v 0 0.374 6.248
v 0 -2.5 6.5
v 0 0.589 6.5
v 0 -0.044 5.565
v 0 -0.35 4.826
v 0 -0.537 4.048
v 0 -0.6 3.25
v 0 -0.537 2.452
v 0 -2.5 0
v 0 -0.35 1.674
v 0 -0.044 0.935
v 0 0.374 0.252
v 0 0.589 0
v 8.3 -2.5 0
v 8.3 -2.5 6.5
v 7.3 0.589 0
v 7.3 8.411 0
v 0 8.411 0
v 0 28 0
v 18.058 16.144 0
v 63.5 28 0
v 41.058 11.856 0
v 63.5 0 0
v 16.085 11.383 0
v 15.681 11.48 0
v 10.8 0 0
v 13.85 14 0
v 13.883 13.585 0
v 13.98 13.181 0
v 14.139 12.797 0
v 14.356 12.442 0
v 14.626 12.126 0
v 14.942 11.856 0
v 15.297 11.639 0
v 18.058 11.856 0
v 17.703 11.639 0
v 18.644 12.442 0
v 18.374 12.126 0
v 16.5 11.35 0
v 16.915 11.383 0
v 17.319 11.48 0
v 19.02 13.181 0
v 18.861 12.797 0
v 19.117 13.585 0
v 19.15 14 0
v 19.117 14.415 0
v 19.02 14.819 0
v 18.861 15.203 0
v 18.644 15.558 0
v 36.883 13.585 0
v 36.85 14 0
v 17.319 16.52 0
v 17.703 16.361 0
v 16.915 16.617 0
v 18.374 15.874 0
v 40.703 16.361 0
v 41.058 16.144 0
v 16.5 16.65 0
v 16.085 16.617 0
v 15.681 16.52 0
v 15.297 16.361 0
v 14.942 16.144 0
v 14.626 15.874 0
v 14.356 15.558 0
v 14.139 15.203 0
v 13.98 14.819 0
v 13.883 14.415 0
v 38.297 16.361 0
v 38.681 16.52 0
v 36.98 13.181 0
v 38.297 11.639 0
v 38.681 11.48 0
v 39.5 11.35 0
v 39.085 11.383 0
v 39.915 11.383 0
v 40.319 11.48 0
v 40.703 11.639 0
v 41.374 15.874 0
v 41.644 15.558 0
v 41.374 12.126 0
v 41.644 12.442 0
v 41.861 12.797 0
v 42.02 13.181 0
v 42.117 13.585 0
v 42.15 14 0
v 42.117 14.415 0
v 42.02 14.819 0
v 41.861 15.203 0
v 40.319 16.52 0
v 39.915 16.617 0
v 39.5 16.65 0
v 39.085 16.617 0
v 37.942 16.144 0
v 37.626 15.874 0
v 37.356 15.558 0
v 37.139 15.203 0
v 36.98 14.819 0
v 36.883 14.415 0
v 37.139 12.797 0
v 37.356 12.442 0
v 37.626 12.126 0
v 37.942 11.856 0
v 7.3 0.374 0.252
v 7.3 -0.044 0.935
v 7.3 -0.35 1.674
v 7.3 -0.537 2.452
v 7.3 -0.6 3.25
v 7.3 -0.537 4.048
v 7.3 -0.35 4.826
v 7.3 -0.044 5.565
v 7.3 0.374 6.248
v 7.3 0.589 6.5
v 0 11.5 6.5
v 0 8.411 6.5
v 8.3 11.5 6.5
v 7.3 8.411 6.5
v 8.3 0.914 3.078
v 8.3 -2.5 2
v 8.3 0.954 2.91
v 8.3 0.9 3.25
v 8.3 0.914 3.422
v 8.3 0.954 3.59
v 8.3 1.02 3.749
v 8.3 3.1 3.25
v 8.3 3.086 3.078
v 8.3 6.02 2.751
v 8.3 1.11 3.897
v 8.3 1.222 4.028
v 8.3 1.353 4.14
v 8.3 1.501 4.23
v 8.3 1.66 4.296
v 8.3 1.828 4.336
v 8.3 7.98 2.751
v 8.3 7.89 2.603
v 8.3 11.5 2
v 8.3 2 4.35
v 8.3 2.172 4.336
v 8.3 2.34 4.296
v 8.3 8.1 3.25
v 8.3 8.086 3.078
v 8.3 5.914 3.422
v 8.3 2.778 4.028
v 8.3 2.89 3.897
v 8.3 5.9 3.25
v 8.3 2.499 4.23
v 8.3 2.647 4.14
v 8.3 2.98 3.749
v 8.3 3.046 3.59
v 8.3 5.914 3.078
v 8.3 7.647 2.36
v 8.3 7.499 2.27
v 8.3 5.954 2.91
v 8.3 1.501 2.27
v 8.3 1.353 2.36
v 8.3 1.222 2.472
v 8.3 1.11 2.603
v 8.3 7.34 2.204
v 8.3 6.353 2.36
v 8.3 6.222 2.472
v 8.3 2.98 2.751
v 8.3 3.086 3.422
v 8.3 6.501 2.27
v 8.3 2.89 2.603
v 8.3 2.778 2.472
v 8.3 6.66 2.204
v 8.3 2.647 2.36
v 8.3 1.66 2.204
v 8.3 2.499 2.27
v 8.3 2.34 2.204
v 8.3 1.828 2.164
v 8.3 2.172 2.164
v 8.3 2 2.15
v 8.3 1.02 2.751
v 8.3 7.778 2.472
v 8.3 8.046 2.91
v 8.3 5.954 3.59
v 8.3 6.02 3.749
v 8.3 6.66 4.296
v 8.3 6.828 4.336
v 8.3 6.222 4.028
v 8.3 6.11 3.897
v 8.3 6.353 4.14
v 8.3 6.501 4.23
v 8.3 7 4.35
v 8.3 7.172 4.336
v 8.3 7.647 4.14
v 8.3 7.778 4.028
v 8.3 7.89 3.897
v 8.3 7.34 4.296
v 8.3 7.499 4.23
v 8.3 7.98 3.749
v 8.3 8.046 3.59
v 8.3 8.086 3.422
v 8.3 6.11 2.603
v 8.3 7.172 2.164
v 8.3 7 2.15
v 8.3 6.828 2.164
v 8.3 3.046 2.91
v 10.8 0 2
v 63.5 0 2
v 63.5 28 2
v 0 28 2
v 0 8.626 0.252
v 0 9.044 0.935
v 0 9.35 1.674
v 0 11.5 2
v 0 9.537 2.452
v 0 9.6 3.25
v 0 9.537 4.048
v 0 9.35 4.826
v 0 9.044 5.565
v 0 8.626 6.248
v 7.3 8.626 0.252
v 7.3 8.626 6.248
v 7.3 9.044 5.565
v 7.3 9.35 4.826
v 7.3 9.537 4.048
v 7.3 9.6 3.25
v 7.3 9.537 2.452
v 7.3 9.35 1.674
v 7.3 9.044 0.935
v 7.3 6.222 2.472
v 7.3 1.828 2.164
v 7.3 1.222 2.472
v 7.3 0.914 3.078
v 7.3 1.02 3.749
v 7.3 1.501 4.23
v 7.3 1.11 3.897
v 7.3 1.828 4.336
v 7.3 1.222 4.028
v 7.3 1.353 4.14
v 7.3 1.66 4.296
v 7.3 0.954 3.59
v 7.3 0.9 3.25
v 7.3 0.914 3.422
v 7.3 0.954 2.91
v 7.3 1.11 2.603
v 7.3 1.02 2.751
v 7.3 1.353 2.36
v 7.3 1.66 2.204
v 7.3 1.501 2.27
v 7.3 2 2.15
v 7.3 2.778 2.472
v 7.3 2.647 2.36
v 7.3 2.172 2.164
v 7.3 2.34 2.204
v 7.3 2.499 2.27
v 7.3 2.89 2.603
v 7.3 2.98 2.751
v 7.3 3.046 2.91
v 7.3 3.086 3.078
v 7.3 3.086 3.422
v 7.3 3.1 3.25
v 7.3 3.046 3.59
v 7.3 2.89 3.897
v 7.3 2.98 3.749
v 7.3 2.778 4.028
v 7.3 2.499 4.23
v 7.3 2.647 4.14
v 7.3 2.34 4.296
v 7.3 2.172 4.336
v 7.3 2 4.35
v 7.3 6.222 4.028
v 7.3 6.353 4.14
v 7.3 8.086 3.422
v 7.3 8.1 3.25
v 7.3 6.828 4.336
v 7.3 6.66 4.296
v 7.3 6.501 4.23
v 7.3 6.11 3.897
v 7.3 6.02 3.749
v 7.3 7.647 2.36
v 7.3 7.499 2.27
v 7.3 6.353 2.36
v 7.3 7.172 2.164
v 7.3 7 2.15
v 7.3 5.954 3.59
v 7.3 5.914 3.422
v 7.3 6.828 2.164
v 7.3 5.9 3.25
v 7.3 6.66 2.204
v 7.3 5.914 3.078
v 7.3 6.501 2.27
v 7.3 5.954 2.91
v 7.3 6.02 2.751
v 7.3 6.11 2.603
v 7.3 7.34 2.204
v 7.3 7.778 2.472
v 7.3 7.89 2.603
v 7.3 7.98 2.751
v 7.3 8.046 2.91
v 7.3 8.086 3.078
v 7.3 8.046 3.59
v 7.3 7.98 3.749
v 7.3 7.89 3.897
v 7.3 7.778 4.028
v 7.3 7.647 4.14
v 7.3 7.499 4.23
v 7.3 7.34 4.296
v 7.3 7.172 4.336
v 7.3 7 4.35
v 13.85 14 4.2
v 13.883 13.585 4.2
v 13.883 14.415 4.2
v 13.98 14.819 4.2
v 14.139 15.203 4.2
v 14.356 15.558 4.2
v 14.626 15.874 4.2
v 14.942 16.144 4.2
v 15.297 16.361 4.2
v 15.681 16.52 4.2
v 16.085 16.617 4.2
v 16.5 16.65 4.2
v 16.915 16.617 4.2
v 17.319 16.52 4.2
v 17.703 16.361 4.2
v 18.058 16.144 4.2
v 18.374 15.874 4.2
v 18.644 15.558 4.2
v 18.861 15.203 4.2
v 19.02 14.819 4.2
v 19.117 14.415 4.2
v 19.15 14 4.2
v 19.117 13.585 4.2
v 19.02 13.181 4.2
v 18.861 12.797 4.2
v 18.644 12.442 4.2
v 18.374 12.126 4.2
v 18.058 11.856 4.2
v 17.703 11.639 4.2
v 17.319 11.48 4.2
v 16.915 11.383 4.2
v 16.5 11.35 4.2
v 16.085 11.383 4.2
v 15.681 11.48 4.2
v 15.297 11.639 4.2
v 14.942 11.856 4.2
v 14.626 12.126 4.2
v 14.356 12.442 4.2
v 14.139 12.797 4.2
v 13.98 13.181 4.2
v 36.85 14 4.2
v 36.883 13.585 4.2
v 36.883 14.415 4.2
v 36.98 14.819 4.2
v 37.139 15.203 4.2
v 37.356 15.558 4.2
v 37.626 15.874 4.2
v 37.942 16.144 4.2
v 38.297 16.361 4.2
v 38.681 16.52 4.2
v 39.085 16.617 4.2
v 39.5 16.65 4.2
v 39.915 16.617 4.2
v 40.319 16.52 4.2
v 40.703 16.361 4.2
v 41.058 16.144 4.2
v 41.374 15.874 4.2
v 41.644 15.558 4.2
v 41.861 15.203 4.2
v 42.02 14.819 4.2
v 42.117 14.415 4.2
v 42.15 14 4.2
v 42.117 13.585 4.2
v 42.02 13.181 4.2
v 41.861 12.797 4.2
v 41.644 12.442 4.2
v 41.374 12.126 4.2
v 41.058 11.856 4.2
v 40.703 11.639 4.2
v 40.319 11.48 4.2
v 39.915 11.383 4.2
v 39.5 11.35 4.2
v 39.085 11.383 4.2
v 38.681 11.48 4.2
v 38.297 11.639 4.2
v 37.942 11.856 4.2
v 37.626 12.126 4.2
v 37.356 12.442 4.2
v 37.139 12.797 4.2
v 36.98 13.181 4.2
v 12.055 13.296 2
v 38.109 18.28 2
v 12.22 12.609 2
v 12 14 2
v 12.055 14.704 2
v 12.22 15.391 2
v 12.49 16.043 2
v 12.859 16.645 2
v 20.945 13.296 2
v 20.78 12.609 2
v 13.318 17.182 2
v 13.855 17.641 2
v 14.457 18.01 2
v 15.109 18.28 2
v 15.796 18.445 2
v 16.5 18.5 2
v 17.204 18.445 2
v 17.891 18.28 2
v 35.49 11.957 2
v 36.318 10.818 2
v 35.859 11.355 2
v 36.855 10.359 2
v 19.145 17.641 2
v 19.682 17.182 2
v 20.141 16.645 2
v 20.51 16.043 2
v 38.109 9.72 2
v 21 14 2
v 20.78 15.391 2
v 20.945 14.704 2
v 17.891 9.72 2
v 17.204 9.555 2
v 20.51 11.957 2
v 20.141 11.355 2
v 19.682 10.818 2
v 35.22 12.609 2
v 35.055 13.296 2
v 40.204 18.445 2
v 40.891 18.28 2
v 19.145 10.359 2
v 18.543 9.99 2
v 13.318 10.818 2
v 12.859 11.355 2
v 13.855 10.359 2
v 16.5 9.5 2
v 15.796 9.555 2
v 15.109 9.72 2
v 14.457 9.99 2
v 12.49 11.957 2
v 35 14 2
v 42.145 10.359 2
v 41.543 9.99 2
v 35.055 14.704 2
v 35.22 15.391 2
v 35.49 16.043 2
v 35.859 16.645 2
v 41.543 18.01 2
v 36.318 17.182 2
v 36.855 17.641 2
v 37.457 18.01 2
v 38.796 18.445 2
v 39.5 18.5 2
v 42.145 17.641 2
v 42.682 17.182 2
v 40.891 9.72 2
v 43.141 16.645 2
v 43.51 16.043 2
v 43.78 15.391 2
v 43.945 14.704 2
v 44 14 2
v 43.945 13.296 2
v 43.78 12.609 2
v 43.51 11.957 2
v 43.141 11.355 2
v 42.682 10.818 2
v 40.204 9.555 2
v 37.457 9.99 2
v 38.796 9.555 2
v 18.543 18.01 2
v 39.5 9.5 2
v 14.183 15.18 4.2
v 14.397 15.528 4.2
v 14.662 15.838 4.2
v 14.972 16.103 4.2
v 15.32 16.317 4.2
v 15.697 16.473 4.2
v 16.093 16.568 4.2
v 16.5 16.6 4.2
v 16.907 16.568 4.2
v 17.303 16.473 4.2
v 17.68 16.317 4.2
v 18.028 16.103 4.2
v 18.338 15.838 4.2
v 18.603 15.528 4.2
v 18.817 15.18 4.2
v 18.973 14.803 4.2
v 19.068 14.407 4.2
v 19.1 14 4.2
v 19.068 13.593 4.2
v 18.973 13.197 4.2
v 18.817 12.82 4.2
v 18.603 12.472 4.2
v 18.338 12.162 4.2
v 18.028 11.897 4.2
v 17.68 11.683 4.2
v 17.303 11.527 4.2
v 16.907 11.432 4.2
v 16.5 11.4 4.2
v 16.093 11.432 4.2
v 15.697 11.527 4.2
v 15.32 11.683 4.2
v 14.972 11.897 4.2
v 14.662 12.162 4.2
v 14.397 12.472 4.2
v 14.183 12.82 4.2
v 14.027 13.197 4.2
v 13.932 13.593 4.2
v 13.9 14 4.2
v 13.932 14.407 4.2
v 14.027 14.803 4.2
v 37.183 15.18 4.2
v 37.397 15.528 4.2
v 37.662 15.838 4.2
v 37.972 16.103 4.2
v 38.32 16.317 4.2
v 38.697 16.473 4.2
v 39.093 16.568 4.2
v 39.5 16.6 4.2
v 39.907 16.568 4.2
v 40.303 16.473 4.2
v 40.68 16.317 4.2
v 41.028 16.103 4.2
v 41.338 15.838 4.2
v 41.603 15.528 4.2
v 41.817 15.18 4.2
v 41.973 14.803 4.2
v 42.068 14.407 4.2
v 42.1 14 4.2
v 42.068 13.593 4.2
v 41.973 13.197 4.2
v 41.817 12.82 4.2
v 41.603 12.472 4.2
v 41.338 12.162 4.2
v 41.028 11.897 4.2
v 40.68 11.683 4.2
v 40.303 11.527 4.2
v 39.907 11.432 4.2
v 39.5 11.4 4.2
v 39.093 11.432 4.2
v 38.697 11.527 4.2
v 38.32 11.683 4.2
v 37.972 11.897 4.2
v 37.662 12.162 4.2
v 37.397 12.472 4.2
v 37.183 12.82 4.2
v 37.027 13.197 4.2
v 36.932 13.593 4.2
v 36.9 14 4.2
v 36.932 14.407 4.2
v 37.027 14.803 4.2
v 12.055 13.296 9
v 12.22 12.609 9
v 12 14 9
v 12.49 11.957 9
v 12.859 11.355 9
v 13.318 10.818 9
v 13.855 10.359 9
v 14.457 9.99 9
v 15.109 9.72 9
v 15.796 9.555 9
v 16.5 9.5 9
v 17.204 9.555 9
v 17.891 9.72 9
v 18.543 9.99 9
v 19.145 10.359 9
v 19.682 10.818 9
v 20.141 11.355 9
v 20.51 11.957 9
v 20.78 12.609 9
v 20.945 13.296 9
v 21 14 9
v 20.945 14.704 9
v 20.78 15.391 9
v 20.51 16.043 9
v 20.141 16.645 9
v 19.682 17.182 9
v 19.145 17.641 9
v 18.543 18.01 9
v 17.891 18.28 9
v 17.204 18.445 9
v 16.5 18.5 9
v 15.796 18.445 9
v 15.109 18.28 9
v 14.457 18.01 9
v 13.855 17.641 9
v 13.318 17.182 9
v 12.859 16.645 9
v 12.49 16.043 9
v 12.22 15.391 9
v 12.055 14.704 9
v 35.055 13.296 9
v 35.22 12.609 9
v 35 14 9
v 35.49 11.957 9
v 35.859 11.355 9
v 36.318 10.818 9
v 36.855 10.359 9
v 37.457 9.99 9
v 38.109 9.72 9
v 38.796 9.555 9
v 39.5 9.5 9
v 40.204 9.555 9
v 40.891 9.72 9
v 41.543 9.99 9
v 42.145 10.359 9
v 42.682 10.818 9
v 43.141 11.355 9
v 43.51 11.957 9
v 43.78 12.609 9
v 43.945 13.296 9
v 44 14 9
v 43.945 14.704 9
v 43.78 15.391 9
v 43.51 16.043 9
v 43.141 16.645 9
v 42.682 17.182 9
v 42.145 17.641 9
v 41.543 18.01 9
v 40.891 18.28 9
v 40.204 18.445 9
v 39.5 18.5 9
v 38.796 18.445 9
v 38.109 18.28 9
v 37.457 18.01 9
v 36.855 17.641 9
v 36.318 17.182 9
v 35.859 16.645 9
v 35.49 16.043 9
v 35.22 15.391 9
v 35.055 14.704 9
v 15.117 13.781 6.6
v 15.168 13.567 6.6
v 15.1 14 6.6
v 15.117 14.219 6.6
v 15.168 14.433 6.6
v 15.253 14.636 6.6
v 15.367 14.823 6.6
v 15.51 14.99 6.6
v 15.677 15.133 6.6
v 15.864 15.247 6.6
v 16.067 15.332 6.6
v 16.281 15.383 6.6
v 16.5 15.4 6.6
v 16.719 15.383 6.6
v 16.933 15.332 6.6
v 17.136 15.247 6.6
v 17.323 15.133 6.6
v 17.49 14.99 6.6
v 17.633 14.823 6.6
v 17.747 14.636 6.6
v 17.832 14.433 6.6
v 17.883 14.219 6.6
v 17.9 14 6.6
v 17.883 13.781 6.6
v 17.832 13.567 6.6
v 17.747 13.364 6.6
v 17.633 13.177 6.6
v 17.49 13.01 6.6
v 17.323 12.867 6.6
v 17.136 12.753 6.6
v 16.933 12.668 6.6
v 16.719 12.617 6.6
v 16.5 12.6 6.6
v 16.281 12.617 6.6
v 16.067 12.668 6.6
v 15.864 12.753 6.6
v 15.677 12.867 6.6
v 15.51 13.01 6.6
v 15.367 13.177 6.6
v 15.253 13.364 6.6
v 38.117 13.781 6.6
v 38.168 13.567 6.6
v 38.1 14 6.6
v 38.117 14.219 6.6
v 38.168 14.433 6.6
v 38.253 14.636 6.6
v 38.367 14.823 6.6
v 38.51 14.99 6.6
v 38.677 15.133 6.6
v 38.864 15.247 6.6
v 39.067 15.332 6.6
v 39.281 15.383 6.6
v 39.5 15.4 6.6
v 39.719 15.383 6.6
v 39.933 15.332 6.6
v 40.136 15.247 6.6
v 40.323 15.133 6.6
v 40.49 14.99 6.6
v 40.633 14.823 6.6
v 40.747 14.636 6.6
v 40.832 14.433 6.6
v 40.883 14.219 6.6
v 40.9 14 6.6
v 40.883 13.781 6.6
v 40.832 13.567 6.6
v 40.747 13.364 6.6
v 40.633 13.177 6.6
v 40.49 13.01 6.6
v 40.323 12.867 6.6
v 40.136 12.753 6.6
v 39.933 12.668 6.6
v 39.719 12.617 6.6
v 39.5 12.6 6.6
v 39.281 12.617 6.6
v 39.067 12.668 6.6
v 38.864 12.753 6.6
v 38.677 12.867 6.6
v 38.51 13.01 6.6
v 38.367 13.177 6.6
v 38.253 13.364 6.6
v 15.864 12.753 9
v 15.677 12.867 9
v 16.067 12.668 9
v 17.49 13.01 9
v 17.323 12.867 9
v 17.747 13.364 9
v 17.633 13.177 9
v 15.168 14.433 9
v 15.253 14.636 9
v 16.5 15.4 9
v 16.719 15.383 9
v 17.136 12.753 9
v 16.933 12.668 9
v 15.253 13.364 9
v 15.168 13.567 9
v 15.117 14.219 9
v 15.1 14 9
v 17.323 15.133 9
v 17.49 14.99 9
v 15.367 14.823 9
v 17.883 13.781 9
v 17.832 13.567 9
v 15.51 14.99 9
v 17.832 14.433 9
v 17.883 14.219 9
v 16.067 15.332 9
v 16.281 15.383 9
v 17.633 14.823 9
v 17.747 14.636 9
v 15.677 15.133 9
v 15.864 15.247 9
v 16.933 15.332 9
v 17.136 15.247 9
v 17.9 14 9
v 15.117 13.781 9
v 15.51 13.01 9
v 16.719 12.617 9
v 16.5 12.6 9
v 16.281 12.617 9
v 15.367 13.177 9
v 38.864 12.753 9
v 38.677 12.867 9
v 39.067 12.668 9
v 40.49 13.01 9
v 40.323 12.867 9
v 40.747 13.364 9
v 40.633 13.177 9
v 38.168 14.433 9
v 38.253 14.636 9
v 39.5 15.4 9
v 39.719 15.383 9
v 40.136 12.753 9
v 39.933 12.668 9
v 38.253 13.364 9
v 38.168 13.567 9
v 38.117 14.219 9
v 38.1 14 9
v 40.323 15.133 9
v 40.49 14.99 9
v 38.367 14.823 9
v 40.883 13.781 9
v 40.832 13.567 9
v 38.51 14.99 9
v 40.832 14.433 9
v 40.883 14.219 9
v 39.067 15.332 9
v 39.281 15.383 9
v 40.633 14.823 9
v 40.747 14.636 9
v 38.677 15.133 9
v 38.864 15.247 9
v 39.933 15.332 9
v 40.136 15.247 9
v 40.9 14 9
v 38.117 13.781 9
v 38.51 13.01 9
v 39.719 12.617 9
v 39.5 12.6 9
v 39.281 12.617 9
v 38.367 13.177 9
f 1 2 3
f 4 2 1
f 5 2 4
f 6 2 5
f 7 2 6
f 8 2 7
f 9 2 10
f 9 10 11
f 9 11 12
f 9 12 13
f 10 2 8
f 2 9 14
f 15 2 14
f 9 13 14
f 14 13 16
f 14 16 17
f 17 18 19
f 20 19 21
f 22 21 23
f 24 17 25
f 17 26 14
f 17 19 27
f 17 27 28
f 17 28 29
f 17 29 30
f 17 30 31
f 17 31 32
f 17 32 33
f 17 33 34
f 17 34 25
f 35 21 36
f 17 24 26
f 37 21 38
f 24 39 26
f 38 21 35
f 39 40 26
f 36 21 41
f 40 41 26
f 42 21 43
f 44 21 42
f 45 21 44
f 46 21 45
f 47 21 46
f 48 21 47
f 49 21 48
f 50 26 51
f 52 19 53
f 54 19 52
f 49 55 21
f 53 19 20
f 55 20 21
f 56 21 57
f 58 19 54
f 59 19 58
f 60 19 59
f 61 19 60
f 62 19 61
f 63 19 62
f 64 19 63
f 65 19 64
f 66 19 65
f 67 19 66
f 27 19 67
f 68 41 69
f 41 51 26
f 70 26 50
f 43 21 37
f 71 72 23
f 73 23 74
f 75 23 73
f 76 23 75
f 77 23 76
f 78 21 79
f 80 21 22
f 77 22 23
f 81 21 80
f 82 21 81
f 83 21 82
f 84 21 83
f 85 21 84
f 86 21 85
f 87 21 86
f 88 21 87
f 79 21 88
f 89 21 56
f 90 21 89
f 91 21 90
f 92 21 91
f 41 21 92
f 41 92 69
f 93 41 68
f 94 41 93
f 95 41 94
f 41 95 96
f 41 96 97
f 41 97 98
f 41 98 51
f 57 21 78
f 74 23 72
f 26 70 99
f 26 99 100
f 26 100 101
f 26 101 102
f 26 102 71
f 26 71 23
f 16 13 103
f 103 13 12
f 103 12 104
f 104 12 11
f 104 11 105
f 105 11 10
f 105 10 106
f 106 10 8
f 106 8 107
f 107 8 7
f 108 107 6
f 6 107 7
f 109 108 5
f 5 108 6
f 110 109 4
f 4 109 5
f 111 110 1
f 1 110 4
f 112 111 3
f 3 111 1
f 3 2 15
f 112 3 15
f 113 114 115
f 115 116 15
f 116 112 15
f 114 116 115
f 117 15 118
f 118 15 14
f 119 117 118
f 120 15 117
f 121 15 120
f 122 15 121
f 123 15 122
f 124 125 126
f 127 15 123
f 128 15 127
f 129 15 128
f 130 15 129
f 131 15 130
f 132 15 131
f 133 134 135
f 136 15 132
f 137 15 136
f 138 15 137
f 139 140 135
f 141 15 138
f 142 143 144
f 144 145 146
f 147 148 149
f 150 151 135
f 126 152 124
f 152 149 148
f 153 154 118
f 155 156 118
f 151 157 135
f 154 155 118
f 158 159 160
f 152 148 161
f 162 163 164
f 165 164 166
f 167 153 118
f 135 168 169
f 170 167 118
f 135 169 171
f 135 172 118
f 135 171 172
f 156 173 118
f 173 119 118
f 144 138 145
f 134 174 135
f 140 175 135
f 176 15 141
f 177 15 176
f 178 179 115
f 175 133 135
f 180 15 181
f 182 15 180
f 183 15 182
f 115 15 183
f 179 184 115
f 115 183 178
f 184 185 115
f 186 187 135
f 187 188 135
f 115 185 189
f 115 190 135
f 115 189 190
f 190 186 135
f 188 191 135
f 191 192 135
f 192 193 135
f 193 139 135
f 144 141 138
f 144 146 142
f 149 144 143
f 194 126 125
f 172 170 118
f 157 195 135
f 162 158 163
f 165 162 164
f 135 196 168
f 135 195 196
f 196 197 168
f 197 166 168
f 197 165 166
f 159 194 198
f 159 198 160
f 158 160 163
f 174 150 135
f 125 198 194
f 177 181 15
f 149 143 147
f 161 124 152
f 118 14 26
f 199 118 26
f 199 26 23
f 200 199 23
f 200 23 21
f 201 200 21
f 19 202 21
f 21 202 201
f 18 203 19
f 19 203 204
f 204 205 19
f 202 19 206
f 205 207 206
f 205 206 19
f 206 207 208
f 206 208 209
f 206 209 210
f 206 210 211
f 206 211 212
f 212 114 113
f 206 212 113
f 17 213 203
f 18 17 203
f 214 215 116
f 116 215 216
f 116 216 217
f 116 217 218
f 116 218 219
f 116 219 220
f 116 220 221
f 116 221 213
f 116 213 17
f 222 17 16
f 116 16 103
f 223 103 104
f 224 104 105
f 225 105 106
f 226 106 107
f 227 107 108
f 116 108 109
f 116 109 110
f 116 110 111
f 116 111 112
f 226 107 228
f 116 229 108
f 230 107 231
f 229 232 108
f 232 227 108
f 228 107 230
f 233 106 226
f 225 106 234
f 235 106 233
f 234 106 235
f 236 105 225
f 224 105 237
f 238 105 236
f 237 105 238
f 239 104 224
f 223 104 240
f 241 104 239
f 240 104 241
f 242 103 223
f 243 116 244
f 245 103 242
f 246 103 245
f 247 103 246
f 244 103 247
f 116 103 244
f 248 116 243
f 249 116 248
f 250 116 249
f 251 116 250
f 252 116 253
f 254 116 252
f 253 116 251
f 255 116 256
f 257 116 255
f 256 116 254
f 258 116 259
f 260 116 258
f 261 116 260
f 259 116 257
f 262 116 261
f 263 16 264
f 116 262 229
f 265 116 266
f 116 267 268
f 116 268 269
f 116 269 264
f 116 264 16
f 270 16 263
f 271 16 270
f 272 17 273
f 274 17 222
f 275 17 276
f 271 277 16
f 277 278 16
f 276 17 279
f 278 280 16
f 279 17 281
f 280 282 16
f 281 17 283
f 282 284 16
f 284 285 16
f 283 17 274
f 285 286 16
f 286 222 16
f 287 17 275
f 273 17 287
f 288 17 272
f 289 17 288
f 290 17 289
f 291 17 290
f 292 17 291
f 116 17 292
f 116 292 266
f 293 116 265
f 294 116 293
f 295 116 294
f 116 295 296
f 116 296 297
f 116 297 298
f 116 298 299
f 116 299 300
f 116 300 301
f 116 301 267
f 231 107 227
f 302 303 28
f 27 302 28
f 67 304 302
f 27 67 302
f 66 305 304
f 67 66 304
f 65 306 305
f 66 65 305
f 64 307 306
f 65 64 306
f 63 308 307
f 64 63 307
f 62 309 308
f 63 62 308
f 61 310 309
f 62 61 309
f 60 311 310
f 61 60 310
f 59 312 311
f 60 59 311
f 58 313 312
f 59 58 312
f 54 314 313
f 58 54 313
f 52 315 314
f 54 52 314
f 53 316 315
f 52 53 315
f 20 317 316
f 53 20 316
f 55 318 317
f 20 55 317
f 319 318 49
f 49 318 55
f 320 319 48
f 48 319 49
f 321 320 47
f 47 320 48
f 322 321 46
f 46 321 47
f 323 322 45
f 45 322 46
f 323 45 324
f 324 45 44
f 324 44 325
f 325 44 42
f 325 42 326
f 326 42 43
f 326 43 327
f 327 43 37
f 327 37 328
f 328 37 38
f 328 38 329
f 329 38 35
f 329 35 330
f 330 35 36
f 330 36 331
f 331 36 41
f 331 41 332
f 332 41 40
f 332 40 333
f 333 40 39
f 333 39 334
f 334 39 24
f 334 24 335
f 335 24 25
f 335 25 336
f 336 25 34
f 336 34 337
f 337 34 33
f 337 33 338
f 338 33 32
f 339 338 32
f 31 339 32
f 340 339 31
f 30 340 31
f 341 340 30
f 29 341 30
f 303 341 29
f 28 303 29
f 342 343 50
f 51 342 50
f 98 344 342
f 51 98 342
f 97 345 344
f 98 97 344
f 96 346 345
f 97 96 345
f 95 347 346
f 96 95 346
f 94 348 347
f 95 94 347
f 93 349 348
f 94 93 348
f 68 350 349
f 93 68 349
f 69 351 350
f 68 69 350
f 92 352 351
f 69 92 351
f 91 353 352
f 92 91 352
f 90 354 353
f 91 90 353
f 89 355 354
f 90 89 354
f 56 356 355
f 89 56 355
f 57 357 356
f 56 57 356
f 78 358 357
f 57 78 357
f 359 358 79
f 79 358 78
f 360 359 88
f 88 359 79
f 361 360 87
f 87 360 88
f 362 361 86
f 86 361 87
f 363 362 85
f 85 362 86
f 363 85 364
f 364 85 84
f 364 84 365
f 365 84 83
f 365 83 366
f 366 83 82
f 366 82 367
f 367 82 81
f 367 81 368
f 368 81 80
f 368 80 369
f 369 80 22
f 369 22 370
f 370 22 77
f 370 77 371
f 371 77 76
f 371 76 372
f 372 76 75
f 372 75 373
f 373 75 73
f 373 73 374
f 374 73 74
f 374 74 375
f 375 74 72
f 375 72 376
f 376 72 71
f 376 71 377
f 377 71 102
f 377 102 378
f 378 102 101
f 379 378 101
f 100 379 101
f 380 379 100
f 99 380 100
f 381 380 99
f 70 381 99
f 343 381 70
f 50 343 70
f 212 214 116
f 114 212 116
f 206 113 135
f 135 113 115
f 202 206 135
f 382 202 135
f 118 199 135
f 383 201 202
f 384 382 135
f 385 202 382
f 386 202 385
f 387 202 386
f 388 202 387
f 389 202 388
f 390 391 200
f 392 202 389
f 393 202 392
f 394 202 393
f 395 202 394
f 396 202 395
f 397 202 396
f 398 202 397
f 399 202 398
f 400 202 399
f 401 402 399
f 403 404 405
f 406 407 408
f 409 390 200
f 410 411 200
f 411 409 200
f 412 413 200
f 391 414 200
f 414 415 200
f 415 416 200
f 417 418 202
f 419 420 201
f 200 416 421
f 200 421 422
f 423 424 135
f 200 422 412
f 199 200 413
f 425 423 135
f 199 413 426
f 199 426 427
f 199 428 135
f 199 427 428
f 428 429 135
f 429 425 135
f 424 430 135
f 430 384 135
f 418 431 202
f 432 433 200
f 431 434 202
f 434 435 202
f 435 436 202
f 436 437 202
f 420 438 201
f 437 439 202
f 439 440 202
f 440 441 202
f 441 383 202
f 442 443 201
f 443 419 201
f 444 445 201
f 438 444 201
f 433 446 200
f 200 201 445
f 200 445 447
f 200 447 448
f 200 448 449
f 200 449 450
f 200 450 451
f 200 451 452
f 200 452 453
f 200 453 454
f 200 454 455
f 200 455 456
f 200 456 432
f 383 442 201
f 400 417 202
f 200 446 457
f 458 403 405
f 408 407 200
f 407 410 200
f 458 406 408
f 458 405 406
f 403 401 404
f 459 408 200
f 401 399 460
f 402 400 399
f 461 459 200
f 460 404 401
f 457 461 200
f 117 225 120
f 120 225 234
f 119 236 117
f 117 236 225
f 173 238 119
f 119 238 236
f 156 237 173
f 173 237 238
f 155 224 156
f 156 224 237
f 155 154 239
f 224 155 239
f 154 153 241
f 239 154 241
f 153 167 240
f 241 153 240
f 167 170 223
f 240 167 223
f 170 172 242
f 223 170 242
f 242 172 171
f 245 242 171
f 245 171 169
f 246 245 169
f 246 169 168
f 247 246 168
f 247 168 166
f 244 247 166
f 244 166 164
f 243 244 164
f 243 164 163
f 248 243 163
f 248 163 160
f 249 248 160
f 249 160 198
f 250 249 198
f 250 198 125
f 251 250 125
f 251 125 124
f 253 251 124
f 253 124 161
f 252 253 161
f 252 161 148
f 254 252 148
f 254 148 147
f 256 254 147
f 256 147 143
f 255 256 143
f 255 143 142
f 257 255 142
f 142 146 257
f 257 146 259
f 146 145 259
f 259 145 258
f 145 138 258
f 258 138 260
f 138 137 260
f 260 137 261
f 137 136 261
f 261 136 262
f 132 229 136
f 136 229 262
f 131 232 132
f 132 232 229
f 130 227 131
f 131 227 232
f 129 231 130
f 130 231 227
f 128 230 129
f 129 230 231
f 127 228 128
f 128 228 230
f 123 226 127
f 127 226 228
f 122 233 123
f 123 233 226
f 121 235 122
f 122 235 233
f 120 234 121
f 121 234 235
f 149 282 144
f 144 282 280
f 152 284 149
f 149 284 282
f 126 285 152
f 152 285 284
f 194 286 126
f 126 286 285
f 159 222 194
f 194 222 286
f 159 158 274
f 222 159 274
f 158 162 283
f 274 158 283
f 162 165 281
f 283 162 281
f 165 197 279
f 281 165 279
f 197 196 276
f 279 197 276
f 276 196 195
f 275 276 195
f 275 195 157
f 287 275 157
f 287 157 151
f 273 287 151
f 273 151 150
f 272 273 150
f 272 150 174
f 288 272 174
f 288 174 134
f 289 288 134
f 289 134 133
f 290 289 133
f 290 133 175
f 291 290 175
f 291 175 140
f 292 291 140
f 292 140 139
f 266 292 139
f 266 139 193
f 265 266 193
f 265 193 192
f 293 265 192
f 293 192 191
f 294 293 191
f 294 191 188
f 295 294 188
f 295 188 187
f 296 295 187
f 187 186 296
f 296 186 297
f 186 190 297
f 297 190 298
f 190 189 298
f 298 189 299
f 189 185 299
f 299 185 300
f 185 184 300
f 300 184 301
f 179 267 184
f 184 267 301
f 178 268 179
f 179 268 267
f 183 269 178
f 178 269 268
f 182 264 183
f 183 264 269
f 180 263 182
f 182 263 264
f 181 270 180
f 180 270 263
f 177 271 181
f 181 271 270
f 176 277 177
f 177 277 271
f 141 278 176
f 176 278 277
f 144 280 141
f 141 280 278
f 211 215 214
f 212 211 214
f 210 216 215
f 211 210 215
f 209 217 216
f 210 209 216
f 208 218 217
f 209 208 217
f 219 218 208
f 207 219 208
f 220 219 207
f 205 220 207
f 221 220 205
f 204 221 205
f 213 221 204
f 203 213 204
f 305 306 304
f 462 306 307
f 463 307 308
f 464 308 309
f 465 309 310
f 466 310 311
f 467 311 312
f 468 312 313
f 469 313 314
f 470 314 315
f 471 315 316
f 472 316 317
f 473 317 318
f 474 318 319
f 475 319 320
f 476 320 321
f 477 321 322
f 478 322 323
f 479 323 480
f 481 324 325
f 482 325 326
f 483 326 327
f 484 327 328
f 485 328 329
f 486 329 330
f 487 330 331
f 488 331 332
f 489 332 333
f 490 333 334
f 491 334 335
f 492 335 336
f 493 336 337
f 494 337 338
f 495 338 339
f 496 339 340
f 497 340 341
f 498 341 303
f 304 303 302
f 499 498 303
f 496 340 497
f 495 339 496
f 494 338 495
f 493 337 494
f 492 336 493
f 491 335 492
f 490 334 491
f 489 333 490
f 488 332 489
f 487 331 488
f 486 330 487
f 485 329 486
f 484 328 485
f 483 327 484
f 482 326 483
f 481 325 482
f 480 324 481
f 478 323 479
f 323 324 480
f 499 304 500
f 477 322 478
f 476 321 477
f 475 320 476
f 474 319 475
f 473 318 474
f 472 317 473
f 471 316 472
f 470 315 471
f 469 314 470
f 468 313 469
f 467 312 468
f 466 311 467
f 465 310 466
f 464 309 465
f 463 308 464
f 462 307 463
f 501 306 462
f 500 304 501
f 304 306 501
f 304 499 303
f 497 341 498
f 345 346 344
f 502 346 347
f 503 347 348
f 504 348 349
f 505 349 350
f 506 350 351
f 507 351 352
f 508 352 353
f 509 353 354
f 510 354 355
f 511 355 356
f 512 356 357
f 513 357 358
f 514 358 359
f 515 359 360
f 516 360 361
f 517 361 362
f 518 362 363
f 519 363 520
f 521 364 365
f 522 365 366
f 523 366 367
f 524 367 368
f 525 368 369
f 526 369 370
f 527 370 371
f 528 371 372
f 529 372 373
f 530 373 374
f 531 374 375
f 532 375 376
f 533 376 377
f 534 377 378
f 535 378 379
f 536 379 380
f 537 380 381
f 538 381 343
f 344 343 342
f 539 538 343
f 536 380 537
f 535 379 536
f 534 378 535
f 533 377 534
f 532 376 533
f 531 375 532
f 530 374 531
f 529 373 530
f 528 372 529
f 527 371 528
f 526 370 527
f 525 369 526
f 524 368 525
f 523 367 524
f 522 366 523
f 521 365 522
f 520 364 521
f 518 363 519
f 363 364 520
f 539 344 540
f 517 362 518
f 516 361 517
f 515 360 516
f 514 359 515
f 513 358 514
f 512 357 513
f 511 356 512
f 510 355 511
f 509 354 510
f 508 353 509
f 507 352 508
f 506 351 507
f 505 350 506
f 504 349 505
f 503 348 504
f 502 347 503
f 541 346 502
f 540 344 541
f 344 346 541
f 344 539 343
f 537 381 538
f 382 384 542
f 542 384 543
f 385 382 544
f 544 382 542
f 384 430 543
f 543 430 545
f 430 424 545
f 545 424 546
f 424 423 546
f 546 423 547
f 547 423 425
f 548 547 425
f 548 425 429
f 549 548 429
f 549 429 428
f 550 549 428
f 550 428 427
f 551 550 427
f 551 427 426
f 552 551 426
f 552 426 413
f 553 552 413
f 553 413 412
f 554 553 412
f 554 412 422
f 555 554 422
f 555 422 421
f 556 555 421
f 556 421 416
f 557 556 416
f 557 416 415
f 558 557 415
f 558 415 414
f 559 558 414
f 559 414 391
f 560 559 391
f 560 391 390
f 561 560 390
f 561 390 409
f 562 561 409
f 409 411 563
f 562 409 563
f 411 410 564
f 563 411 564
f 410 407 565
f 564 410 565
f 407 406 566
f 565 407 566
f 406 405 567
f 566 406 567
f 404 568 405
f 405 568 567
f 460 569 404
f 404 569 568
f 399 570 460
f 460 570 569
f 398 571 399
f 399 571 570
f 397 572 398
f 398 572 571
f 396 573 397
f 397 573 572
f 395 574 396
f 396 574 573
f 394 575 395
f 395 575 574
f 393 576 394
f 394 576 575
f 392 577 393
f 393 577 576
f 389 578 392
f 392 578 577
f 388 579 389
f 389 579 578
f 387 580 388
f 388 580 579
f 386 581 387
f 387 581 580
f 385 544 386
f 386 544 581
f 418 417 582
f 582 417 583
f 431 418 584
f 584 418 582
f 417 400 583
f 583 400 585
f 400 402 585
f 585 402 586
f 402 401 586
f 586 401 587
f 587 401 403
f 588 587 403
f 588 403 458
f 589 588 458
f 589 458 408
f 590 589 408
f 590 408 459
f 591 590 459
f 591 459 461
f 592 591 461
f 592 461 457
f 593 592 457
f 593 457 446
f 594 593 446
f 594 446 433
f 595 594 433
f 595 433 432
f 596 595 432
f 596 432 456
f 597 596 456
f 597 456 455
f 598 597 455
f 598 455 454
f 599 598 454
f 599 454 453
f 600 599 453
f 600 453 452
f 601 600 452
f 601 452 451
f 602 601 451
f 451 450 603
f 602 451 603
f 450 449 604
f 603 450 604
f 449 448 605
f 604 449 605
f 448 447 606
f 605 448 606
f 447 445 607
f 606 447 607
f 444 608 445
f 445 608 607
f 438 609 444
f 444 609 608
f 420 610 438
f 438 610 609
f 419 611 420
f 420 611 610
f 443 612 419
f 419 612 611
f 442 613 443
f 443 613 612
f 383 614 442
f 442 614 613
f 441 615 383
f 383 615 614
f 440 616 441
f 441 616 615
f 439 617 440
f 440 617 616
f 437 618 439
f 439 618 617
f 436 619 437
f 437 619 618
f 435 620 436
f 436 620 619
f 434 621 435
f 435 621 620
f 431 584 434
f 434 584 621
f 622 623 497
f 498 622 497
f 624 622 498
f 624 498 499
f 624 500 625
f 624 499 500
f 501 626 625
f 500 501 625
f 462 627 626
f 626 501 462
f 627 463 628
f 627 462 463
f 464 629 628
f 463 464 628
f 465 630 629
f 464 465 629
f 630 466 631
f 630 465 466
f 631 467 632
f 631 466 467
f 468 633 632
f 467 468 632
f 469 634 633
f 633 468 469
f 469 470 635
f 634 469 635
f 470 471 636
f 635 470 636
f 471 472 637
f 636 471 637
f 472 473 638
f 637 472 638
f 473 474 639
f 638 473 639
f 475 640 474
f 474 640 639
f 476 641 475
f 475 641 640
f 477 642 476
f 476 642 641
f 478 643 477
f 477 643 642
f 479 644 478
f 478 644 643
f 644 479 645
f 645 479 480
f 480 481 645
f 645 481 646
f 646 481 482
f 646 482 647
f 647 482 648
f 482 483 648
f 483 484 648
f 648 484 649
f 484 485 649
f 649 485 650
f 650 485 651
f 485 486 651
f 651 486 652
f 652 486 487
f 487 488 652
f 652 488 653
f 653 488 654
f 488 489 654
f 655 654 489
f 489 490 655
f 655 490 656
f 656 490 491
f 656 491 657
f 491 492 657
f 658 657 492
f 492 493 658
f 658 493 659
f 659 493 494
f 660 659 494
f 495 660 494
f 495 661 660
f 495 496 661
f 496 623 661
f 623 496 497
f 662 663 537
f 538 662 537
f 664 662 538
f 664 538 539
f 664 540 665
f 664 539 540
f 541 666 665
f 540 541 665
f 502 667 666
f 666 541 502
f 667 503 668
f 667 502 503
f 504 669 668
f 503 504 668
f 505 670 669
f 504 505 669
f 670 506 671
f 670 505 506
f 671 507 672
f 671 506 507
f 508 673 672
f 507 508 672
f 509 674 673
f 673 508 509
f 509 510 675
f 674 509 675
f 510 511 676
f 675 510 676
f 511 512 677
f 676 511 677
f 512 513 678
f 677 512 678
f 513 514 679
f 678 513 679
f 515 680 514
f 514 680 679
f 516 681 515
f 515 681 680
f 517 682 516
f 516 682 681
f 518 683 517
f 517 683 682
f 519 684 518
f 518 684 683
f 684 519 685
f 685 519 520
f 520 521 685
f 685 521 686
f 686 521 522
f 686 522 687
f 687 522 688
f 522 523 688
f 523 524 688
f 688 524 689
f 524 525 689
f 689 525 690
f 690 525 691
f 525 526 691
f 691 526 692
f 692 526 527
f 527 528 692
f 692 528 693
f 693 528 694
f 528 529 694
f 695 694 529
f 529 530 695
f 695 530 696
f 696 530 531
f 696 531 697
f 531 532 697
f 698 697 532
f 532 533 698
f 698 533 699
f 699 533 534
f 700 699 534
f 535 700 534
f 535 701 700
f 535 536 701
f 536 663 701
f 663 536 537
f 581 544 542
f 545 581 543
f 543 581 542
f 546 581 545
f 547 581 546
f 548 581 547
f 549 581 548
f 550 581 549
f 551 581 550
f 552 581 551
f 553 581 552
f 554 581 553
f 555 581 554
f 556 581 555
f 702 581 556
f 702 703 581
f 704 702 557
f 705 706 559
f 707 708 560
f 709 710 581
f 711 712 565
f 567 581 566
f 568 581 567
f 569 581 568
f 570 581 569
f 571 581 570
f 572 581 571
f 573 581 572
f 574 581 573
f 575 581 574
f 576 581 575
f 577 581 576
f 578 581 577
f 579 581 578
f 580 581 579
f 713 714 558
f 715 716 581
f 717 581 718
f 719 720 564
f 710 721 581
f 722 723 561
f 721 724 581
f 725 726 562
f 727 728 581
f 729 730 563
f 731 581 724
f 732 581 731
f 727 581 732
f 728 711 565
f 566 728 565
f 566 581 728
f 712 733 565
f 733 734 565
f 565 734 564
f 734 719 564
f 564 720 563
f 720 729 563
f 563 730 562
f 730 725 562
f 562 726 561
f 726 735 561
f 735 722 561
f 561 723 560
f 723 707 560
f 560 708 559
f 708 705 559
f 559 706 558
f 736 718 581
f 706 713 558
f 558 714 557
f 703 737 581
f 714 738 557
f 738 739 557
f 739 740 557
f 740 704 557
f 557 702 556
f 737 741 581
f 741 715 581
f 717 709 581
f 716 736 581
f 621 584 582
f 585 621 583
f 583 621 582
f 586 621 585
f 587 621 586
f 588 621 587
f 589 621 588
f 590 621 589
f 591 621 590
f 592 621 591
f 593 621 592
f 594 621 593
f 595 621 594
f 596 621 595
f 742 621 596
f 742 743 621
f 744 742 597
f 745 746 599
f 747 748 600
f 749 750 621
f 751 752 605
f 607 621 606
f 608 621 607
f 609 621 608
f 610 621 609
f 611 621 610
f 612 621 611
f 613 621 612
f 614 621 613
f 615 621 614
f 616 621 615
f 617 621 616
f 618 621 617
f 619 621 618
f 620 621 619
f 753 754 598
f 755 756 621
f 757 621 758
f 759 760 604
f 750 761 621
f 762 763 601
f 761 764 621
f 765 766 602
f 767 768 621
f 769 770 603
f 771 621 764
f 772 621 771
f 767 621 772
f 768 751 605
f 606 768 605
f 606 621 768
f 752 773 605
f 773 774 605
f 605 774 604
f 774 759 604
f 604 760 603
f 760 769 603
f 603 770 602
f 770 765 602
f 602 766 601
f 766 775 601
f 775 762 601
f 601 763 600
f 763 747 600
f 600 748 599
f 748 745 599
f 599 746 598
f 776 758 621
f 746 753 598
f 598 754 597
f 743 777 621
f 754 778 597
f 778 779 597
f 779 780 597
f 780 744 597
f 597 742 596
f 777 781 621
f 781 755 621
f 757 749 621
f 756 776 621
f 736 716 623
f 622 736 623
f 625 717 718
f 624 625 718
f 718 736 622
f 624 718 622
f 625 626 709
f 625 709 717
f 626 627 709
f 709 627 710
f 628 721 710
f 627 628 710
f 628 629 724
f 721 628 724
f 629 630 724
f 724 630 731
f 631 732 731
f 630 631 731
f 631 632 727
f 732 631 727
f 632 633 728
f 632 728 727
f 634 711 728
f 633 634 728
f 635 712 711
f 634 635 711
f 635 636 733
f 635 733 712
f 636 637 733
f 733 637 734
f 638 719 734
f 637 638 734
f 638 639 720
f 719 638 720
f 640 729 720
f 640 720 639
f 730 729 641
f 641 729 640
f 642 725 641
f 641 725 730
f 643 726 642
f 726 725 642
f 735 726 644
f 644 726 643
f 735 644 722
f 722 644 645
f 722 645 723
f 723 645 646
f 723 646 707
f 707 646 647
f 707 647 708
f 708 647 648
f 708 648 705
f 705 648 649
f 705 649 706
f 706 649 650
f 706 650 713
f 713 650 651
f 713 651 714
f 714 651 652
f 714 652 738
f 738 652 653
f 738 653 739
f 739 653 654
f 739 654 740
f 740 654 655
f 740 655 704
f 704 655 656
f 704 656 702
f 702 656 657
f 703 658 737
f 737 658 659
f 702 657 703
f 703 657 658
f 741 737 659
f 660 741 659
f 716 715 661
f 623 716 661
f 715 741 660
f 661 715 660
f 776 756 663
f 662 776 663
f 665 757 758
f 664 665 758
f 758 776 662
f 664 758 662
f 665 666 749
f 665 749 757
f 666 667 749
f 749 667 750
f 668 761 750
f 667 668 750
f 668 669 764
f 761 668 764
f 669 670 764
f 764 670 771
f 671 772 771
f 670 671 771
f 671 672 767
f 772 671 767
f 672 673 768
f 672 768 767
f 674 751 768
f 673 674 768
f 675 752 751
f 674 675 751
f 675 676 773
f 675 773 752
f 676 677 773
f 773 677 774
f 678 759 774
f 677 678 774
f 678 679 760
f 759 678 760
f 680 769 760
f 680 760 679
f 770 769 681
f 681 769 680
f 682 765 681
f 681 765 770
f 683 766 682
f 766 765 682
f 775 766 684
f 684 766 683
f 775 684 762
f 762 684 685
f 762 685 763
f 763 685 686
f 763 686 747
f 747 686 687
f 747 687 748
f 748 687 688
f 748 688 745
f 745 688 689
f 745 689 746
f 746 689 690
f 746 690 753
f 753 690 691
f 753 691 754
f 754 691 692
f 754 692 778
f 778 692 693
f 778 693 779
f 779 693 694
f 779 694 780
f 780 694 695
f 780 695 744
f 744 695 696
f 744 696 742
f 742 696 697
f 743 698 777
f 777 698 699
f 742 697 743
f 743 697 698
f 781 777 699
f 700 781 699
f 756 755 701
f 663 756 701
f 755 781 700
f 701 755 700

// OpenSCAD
// Insulator for sensor board with mounting for ultrasonic transducer

$fn=40;
thickness = 2;
holeY=14;
hole1X=16.5;
hole2X=hole1X+23;
transducerY = 4.5;
pillarHeight = 7.0;
transducerZ = 3.25;	// transducer is 0,5mm off the board
transducerR=5.1;
overlap=1;

difference() {
	union() {
		cube([63.5,28,thickness]);
		translate([hole1X,holeY,thickness-overlap]) cylinder(h=pillarHeight+overlap,r=4.5);
		translate([hole2X,holeY,thickness-overlap]) cylinder(h=pillarHeight+overlap,r=4.5);
		translate([0,transducerY-7,0]) cube([8.3,14,pillarHeight+thickness-2.5]);
		translate([8.3,transducerY-7,0]) rotate([0,0,45]) cube([5,5,thickness]);
	}
	translate([hole1X,holeY,-overlap]) cylinder(h=20,r=1.4);
	translate([hole2X,holeY,-overlap]) cylinder(h=20,r=1.4);
	translate([hole1X,holeY,pillarHeight-2.9]) cylinder(r1=2.65,r2=0,h=5.3);
	translate([hole2X,holeY,pillarHeight-2.9]) cylinder(r1=2.65,r2=0,h=5.3);
	translate([hole1X,holeY,-overlap]) cylinder(r=2.65,h=pillarHeight-2.8+overlap);
	translate([hole2X,holeY,-overlap]) cylinder(r=2.65,h=pillarHeight-2.8+overlap);
	translate([-overlap,transducerY,transducerZ]) rotate([0,90,0]) cylinder(r=transducerR,h=8.3);
	translate([0,transducerY-2.5,transducerZ]) rotate([0,90,0]) cylinder(r=1.1,h=10);
	translate([0,transducerY+2.5,transducerZ]) rotate([0,90,0]) cylinder(r=1.1,h=10);
}
